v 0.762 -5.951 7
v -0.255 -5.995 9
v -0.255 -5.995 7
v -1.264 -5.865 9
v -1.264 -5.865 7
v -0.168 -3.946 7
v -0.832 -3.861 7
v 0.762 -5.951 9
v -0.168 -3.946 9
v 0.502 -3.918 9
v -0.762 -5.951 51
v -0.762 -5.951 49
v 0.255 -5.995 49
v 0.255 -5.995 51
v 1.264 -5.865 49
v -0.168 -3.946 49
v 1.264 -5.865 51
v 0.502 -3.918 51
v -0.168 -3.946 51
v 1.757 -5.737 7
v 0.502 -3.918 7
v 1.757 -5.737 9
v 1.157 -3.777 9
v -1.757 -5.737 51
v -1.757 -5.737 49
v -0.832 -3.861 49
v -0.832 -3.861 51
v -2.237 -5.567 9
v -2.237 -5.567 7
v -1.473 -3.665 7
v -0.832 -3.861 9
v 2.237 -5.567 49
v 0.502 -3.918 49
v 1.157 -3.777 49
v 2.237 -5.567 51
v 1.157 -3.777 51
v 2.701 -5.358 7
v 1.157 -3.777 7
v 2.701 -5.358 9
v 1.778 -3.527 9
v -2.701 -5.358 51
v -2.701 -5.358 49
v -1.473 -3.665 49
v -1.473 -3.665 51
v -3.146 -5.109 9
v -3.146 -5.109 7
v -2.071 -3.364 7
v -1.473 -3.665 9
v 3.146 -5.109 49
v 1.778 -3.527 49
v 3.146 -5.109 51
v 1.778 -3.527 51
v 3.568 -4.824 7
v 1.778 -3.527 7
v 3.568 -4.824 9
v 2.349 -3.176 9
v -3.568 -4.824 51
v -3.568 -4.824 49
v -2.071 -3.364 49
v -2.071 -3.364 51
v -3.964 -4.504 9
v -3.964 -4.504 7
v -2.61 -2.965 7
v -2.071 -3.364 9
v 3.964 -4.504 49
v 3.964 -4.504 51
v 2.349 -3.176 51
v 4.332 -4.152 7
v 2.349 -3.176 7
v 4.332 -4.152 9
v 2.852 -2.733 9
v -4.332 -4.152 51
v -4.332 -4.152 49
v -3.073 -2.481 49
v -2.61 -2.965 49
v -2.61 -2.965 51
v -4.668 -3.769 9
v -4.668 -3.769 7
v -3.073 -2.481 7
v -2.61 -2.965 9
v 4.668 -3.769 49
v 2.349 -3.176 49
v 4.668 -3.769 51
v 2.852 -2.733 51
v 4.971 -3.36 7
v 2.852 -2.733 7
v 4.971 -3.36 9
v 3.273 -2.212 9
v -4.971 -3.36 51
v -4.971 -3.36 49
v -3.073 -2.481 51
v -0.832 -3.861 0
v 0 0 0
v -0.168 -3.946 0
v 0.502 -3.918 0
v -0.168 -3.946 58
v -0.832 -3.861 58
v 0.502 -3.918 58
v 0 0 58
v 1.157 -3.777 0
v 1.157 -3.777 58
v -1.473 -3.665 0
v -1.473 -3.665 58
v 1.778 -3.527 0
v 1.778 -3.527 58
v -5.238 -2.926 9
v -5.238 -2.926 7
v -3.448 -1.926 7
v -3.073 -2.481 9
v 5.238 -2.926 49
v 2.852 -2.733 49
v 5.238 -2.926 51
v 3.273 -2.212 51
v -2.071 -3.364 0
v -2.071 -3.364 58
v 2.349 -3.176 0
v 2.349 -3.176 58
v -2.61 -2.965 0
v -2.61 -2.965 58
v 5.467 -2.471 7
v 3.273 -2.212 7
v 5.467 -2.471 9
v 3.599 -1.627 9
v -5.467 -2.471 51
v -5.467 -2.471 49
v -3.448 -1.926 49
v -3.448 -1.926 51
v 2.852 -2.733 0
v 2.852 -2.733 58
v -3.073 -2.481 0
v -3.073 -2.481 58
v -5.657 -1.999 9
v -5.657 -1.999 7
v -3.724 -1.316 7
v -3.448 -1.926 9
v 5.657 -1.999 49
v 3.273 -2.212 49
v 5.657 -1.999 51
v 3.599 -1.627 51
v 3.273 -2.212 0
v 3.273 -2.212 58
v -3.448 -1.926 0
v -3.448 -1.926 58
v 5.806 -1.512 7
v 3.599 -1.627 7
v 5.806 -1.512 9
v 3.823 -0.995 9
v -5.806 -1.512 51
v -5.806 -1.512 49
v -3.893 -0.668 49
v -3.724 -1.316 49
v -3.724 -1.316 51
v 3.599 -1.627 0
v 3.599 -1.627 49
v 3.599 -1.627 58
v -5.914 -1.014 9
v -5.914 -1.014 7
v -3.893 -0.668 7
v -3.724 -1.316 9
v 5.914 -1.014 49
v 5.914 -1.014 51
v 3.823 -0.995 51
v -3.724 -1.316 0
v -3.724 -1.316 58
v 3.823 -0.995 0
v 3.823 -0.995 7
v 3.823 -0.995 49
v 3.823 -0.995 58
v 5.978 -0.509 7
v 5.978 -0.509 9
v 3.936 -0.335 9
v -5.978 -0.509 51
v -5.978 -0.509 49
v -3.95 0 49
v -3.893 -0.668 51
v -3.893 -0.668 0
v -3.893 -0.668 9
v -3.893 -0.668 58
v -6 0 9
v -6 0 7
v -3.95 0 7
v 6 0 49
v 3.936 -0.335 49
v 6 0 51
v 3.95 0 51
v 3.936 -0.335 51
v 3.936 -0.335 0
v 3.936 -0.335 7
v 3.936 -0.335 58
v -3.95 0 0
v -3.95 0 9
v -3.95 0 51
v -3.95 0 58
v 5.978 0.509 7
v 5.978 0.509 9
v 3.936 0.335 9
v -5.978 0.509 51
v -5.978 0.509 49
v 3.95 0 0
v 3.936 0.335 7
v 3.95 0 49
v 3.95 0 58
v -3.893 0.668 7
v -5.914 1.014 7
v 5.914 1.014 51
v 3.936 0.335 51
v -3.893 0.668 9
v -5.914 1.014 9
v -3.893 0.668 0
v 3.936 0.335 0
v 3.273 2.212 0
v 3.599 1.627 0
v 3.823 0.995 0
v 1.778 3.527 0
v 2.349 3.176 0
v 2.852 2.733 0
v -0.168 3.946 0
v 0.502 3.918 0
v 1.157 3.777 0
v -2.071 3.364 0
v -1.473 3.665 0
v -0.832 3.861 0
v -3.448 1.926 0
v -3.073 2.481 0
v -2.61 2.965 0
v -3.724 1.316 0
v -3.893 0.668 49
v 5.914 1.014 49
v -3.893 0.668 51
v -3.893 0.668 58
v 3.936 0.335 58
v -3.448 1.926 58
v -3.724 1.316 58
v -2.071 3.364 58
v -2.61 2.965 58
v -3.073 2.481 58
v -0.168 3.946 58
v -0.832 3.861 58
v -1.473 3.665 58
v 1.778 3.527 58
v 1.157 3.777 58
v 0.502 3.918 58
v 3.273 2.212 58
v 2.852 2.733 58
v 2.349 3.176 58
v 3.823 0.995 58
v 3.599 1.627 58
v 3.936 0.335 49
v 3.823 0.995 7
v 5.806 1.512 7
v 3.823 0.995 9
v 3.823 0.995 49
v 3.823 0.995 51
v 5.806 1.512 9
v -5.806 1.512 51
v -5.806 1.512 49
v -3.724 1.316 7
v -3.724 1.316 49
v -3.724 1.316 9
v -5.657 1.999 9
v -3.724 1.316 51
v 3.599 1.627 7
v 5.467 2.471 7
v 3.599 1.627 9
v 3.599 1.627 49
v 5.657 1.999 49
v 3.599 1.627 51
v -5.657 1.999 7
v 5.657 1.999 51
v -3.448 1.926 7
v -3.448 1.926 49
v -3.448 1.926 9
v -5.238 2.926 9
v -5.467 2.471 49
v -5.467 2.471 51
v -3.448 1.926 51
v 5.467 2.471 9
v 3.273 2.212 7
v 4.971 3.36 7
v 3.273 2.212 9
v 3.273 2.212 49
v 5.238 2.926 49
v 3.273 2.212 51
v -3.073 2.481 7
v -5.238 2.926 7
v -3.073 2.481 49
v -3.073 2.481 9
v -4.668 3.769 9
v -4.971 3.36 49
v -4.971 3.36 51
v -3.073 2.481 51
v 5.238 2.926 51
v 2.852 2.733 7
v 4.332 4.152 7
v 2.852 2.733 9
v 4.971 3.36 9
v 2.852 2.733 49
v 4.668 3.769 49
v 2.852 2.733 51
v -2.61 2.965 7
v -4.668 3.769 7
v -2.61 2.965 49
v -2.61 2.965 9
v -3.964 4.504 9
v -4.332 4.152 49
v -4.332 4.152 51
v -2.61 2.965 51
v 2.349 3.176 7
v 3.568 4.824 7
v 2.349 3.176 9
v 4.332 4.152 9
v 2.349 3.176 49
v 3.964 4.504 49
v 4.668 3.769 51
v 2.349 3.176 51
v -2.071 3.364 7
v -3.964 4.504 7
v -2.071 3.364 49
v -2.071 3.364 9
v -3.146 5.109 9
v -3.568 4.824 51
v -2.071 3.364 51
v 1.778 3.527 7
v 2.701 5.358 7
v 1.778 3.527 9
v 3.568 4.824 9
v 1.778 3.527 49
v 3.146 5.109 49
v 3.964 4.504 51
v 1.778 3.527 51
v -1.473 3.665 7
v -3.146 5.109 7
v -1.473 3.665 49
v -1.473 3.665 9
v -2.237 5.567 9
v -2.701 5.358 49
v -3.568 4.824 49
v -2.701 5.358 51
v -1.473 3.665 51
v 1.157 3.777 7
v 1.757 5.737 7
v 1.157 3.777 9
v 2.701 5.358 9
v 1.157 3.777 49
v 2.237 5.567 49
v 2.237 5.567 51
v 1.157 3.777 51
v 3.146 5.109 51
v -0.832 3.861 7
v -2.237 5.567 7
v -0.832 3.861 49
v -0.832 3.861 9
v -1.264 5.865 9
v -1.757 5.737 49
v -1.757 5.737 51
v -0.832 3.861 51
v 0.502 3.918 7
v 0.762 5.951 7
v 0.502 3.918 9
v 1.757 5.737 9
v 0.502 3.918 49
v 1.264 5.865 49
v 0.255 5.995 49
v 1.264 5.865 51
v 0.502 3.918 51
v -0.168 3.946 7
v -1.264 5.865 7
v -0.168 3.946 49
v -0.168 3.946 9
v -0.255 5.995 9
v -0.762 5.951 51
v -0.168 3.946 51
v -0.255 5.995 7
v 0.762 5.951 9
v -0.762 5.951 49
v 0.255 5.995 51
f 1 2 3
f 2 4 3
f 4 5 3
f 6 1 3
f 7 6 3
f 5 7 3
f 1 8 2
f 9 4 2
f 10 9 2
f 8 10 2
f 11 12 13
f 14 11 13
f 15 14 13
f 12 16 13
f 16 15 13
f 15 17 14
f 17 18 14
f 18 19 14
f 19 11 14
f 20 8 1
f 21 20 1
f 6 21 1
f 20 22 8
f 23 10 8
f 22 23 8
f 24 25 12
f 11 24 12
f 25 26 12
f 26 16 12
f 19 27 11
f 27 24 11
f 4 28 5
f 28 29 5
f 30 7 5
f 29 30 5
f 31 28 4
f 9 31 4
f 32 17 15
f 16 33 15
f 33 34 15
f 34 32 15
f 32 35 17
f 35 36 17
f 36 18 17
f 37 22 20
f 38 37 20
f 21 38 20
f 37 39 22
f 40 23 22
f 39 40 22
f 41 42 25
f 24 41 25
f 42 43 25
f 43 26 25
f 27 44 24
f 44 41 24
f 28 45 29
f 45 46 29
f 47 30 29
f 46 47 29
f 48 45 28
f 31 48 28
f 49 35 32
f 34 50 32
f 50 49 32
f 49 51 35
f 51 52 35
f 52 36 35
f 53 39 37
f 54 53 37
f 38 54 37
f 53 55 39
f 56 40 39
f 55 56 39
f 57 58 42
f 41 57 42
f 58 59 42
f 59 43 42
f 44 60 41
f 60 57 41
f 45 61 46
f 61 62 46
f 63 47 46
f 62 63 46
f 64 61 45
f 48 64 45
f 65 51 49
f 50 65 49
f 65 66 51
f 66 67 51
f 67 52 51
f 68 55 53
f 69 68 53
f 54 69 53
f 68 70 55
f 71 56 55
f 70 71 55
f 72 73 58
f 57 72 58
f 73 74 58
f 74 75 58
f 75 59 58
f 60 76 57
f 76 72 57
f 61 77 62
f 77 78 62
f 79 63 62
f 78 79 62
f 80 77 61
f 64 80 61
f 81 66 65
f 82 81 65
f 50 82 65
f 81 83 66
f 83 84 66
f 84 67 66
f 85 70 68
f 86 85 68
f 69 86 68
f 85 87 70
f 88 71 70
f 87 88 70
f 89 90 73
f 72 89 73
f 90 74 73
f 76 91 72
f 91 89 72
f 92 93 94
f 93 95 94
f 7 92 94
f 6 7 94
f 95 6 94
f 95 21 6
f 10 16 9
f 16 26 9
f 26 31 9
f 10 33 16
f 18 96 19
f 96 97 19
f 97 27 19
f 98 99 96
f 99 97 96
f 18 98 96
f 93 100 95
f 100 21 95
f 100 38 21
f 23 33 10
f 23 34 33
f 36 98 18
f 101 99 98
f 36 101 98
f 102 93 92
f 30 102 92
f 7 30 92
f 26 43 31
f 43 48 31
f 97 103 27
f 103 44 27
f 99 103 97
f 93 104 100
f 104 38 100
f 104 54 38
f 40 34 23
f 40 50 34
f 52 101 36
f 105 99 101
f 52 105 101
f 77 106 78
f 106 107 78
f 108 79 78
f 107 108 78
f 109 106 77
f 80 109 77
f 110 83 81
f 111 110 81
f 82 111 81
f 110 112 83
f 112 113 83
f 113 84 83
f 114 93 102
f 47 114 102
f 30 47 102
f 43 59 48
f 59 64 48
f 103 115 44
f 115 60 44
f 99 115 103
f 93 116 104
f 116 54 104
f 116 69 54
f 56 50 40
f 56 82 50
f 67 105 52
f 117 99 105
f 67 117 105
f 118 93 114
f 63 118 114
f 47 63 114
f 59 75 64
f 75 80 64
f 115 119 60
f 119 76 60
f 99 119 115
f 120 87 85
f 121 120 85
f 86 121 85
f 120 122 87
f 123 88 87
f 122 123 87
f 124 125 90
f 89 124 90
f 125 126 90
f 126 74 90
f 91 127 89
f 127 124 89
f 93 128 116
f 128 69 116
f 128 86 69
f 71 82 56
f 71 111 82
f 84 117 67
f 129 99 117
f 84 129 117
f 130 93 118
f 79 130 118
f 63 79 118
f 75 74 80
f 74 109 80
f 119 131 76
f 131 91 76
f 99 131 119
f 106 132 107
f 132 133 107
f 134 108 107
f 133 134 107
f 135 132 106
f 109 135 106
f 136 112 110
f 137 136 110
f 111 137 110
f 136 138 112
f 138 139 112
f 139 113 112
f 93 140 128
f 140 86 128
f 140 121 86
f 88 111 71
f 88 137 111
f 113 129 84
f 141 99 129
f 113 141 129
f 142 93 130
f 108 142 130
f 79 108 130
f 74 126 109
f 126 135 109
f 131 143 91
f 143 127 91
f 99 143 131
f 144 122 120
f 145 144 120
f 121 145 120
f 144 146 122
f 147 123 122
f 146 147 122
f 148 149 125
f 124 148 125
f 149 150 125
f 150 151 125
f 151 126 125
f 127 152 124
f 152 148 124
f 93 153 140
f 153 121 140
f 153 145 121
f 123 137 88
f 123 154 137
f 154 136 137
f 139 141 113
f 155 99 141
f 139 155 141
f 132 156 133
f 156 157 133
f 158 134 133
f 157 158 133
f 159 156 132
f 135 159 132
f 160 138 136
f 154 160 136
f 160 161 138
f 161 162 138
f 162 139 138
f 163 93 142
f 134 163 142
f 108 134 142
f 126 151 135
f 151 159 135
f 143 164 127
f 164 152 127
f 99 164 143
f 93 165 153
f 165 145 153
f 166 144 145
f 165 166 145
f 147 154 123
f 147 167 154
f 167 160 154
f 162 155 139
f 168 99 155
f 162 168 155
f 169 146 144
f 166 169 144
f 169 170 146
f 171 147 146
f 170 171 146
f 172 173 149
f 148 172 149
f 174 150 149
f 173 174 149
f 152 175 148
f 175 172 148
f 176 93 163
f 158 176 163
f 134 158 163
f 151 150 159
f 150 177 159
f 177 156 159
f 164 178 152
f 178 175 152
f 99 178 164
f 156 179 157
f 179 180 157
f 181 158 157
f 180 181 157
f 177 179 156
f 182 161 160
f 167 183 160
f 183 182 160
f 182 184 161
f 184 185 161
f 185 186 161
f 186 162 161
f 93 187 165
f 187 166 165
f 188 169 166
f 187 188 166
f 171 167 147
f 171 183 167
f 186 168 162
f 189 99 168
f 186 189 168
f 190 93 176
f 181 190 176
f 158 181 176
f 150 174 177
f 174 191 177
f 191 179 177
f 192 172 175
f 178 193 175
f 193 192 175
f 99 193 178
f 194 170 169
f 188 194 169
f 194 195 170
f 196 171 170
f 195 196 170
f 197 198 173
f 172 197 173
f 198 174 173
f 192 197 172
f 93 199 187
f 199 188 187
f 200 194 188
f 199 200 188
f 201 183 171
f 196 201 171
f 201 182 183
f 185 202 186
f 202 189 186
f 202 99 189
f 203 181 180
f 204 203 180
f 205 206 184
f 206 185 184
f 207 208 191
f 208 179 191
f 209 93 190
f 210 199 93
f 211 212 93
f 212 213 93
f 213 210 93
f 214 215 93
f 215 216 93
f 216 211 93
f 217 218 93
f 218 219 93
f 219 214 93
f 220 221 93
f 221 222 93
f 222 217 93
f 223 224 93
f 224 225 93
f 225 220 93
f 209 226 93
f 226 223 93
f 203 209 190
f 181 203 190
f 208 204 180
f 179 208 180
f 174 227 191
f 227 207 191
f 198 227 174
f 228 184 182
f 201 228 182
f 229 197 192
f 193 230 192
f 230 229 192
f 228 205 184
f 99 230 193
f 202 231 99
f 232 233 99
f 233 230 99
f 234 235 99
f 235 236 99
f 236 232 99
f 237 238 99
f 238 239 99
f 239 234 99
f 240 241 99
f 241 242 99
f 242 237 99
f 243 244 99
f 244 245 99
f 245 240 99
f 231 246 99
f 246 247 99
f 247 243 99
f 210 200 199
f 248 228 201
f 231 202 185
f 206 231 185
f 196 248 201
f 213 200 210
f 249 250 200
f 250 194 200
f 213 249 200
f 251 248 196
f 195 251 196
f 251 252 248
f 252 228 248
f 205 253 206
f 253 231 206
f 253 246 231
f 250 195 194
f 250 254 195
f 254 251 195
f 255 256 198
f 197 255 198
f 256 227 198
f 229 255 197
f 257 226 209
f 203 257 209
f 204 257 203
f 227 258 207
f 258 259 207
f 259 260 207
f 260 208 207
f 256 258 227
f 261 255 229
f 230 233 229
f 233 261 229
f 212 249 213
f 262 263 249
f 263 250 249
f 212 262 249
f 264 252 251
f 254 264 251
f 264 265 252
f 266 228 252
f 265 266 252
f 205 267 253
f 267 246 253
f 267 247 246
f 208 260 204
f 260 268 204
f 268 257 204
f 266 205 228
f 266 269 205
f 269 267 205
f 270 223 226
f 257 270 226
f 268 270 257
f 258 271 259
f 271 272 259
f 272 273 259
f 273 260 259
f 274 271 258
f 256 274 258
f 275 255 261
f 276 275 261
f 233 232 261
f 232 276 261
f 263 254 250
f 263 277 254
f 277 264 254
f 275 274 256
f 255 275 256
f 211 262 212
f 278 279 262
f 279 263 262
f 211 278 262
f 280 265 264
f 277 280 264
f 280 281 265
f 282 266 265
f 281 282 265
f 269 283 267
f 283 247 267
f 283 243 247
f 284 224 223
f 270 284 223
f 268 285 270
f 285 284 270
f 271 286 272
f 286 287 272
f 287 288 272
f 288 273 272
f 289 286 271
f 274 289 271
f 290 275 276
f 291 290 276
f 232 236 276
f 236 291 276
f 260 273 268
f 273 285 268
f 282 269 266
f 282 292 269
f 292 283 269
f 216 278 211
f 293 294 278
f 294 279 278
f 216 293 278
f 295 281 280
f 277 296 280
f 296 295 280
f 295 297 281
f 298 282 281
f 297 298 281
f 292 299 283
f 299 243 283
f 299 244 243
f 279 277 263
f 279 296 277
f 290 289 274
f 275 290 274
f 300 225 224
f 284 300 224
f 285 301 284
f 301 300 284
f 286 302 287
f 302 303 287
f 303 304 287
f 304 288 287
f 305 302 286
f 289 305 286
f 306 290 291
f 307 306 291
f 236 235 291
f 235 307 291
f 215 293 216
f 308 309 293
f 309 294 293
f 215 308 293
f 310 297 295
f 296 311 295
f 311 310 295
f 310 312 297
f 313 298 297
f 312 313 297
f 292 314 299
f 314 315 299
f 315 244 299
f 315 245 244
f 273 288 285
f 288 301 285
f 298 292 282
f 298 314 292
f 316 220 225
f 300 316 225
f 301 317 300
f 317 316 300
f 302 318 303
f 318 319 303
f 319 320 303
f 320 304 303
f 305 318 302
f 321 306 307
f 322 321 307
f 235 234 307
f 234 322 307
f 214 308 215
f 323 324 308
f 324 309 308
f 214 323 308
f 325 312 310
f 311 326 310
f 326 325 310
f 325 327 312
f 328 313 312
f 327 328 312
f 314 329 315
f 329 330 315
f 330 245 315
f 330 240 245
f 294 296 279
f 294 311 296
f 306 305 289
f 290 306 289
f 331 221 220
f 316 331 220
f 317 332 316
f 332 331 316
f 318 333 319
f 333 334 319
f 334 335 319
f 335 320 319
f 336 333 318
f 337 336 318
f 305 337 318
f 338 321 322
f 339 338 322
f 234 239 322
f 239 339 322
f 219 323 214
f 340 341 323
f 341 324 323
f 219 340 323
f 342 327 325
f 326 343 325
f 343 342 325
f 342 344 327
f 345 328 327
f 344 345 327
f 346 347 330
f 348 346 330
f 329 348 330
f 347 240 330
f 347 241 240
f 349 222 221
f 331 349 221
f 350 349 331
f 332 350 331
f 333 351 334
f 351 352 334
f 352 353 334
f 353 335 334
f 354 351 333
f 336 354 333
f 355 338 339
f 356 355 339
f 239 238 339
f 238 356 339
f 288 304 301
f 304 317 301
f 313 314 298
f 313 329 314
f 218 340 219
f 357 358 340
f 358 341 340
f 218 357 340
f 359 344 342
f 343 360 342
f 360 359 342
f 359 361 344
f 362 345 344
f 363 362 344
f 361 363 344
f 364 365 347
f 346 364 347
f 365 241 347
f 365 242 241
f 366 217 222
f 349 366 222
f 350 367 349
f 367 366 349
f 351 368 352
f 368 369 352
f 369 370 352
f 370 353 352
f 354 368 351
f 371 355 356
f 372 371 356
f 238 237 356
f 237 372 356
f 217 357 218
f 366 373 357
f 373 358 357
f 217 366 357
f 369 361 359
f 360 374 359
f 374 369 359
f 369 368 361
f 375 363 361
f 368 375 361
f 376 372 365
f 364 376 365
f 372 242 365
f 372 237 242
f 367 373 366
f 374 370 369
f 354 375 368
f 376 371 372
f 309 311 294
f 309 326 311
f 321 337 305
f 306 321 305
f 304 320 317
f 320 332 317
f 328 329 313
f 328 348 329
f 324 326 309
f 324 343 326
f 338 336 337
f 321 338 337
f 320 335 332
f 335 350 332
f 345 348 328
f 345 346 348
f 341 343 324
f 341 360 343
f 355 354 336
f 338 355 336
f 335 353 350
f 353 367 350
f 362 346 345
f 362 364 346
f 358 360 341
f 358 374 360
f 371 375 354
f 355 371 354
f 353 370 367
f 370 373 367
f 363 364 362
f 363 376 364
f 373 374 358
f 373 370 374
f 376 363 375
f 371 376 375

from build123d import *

# Parameters (mm, degrees)
SKETCH1_R           = 3.95
BOSS_EXTRUDE1_DEPTH = 58
SKETCH2_R           = 6
BOSS_EXTRUDE2_DEPTH = 2
BOSS_EXTRUDE3_START = -2
SKETCH3_R           = 6
BOSS_EXTRUDE3_DEPTH = 2


with BuildPart() as part:
    # Sketch1 → Boss-Extrude1 (new body)
    with BuildSketch(Plane.XY):
        with Locations(Location((0, 0, 0), (0, 0, 180))):
            Circle(SKETCH1_R)
    extrude(amount=BOSS_EXTRUDE1_DEPTH)

    # Sketch2 → Boss-Extrude2 (add)
    with BuildSketch(Plane.XY.offset(51)):
        Circle(SKETCH2_R)
    extrude(amount=-BOSS_EXTRUDE2_DEPTH)

    # Sketch3 → Boss-Extrude3 (add)
    with BuildSketch(Plane(origin=(0, 0, 7), x_dir=(-1, 0, 0), z_dir=(0, 0, -1)).offset(BOSS_EXTRUDE3_START)):
        with Locations(Location((0, 0, 0), (0, 0, 180))):
            Circle(SKETCH3_R)
    extrude(amount=BOSS_EXTRUDE3_DEPTH)


solid = part.part
